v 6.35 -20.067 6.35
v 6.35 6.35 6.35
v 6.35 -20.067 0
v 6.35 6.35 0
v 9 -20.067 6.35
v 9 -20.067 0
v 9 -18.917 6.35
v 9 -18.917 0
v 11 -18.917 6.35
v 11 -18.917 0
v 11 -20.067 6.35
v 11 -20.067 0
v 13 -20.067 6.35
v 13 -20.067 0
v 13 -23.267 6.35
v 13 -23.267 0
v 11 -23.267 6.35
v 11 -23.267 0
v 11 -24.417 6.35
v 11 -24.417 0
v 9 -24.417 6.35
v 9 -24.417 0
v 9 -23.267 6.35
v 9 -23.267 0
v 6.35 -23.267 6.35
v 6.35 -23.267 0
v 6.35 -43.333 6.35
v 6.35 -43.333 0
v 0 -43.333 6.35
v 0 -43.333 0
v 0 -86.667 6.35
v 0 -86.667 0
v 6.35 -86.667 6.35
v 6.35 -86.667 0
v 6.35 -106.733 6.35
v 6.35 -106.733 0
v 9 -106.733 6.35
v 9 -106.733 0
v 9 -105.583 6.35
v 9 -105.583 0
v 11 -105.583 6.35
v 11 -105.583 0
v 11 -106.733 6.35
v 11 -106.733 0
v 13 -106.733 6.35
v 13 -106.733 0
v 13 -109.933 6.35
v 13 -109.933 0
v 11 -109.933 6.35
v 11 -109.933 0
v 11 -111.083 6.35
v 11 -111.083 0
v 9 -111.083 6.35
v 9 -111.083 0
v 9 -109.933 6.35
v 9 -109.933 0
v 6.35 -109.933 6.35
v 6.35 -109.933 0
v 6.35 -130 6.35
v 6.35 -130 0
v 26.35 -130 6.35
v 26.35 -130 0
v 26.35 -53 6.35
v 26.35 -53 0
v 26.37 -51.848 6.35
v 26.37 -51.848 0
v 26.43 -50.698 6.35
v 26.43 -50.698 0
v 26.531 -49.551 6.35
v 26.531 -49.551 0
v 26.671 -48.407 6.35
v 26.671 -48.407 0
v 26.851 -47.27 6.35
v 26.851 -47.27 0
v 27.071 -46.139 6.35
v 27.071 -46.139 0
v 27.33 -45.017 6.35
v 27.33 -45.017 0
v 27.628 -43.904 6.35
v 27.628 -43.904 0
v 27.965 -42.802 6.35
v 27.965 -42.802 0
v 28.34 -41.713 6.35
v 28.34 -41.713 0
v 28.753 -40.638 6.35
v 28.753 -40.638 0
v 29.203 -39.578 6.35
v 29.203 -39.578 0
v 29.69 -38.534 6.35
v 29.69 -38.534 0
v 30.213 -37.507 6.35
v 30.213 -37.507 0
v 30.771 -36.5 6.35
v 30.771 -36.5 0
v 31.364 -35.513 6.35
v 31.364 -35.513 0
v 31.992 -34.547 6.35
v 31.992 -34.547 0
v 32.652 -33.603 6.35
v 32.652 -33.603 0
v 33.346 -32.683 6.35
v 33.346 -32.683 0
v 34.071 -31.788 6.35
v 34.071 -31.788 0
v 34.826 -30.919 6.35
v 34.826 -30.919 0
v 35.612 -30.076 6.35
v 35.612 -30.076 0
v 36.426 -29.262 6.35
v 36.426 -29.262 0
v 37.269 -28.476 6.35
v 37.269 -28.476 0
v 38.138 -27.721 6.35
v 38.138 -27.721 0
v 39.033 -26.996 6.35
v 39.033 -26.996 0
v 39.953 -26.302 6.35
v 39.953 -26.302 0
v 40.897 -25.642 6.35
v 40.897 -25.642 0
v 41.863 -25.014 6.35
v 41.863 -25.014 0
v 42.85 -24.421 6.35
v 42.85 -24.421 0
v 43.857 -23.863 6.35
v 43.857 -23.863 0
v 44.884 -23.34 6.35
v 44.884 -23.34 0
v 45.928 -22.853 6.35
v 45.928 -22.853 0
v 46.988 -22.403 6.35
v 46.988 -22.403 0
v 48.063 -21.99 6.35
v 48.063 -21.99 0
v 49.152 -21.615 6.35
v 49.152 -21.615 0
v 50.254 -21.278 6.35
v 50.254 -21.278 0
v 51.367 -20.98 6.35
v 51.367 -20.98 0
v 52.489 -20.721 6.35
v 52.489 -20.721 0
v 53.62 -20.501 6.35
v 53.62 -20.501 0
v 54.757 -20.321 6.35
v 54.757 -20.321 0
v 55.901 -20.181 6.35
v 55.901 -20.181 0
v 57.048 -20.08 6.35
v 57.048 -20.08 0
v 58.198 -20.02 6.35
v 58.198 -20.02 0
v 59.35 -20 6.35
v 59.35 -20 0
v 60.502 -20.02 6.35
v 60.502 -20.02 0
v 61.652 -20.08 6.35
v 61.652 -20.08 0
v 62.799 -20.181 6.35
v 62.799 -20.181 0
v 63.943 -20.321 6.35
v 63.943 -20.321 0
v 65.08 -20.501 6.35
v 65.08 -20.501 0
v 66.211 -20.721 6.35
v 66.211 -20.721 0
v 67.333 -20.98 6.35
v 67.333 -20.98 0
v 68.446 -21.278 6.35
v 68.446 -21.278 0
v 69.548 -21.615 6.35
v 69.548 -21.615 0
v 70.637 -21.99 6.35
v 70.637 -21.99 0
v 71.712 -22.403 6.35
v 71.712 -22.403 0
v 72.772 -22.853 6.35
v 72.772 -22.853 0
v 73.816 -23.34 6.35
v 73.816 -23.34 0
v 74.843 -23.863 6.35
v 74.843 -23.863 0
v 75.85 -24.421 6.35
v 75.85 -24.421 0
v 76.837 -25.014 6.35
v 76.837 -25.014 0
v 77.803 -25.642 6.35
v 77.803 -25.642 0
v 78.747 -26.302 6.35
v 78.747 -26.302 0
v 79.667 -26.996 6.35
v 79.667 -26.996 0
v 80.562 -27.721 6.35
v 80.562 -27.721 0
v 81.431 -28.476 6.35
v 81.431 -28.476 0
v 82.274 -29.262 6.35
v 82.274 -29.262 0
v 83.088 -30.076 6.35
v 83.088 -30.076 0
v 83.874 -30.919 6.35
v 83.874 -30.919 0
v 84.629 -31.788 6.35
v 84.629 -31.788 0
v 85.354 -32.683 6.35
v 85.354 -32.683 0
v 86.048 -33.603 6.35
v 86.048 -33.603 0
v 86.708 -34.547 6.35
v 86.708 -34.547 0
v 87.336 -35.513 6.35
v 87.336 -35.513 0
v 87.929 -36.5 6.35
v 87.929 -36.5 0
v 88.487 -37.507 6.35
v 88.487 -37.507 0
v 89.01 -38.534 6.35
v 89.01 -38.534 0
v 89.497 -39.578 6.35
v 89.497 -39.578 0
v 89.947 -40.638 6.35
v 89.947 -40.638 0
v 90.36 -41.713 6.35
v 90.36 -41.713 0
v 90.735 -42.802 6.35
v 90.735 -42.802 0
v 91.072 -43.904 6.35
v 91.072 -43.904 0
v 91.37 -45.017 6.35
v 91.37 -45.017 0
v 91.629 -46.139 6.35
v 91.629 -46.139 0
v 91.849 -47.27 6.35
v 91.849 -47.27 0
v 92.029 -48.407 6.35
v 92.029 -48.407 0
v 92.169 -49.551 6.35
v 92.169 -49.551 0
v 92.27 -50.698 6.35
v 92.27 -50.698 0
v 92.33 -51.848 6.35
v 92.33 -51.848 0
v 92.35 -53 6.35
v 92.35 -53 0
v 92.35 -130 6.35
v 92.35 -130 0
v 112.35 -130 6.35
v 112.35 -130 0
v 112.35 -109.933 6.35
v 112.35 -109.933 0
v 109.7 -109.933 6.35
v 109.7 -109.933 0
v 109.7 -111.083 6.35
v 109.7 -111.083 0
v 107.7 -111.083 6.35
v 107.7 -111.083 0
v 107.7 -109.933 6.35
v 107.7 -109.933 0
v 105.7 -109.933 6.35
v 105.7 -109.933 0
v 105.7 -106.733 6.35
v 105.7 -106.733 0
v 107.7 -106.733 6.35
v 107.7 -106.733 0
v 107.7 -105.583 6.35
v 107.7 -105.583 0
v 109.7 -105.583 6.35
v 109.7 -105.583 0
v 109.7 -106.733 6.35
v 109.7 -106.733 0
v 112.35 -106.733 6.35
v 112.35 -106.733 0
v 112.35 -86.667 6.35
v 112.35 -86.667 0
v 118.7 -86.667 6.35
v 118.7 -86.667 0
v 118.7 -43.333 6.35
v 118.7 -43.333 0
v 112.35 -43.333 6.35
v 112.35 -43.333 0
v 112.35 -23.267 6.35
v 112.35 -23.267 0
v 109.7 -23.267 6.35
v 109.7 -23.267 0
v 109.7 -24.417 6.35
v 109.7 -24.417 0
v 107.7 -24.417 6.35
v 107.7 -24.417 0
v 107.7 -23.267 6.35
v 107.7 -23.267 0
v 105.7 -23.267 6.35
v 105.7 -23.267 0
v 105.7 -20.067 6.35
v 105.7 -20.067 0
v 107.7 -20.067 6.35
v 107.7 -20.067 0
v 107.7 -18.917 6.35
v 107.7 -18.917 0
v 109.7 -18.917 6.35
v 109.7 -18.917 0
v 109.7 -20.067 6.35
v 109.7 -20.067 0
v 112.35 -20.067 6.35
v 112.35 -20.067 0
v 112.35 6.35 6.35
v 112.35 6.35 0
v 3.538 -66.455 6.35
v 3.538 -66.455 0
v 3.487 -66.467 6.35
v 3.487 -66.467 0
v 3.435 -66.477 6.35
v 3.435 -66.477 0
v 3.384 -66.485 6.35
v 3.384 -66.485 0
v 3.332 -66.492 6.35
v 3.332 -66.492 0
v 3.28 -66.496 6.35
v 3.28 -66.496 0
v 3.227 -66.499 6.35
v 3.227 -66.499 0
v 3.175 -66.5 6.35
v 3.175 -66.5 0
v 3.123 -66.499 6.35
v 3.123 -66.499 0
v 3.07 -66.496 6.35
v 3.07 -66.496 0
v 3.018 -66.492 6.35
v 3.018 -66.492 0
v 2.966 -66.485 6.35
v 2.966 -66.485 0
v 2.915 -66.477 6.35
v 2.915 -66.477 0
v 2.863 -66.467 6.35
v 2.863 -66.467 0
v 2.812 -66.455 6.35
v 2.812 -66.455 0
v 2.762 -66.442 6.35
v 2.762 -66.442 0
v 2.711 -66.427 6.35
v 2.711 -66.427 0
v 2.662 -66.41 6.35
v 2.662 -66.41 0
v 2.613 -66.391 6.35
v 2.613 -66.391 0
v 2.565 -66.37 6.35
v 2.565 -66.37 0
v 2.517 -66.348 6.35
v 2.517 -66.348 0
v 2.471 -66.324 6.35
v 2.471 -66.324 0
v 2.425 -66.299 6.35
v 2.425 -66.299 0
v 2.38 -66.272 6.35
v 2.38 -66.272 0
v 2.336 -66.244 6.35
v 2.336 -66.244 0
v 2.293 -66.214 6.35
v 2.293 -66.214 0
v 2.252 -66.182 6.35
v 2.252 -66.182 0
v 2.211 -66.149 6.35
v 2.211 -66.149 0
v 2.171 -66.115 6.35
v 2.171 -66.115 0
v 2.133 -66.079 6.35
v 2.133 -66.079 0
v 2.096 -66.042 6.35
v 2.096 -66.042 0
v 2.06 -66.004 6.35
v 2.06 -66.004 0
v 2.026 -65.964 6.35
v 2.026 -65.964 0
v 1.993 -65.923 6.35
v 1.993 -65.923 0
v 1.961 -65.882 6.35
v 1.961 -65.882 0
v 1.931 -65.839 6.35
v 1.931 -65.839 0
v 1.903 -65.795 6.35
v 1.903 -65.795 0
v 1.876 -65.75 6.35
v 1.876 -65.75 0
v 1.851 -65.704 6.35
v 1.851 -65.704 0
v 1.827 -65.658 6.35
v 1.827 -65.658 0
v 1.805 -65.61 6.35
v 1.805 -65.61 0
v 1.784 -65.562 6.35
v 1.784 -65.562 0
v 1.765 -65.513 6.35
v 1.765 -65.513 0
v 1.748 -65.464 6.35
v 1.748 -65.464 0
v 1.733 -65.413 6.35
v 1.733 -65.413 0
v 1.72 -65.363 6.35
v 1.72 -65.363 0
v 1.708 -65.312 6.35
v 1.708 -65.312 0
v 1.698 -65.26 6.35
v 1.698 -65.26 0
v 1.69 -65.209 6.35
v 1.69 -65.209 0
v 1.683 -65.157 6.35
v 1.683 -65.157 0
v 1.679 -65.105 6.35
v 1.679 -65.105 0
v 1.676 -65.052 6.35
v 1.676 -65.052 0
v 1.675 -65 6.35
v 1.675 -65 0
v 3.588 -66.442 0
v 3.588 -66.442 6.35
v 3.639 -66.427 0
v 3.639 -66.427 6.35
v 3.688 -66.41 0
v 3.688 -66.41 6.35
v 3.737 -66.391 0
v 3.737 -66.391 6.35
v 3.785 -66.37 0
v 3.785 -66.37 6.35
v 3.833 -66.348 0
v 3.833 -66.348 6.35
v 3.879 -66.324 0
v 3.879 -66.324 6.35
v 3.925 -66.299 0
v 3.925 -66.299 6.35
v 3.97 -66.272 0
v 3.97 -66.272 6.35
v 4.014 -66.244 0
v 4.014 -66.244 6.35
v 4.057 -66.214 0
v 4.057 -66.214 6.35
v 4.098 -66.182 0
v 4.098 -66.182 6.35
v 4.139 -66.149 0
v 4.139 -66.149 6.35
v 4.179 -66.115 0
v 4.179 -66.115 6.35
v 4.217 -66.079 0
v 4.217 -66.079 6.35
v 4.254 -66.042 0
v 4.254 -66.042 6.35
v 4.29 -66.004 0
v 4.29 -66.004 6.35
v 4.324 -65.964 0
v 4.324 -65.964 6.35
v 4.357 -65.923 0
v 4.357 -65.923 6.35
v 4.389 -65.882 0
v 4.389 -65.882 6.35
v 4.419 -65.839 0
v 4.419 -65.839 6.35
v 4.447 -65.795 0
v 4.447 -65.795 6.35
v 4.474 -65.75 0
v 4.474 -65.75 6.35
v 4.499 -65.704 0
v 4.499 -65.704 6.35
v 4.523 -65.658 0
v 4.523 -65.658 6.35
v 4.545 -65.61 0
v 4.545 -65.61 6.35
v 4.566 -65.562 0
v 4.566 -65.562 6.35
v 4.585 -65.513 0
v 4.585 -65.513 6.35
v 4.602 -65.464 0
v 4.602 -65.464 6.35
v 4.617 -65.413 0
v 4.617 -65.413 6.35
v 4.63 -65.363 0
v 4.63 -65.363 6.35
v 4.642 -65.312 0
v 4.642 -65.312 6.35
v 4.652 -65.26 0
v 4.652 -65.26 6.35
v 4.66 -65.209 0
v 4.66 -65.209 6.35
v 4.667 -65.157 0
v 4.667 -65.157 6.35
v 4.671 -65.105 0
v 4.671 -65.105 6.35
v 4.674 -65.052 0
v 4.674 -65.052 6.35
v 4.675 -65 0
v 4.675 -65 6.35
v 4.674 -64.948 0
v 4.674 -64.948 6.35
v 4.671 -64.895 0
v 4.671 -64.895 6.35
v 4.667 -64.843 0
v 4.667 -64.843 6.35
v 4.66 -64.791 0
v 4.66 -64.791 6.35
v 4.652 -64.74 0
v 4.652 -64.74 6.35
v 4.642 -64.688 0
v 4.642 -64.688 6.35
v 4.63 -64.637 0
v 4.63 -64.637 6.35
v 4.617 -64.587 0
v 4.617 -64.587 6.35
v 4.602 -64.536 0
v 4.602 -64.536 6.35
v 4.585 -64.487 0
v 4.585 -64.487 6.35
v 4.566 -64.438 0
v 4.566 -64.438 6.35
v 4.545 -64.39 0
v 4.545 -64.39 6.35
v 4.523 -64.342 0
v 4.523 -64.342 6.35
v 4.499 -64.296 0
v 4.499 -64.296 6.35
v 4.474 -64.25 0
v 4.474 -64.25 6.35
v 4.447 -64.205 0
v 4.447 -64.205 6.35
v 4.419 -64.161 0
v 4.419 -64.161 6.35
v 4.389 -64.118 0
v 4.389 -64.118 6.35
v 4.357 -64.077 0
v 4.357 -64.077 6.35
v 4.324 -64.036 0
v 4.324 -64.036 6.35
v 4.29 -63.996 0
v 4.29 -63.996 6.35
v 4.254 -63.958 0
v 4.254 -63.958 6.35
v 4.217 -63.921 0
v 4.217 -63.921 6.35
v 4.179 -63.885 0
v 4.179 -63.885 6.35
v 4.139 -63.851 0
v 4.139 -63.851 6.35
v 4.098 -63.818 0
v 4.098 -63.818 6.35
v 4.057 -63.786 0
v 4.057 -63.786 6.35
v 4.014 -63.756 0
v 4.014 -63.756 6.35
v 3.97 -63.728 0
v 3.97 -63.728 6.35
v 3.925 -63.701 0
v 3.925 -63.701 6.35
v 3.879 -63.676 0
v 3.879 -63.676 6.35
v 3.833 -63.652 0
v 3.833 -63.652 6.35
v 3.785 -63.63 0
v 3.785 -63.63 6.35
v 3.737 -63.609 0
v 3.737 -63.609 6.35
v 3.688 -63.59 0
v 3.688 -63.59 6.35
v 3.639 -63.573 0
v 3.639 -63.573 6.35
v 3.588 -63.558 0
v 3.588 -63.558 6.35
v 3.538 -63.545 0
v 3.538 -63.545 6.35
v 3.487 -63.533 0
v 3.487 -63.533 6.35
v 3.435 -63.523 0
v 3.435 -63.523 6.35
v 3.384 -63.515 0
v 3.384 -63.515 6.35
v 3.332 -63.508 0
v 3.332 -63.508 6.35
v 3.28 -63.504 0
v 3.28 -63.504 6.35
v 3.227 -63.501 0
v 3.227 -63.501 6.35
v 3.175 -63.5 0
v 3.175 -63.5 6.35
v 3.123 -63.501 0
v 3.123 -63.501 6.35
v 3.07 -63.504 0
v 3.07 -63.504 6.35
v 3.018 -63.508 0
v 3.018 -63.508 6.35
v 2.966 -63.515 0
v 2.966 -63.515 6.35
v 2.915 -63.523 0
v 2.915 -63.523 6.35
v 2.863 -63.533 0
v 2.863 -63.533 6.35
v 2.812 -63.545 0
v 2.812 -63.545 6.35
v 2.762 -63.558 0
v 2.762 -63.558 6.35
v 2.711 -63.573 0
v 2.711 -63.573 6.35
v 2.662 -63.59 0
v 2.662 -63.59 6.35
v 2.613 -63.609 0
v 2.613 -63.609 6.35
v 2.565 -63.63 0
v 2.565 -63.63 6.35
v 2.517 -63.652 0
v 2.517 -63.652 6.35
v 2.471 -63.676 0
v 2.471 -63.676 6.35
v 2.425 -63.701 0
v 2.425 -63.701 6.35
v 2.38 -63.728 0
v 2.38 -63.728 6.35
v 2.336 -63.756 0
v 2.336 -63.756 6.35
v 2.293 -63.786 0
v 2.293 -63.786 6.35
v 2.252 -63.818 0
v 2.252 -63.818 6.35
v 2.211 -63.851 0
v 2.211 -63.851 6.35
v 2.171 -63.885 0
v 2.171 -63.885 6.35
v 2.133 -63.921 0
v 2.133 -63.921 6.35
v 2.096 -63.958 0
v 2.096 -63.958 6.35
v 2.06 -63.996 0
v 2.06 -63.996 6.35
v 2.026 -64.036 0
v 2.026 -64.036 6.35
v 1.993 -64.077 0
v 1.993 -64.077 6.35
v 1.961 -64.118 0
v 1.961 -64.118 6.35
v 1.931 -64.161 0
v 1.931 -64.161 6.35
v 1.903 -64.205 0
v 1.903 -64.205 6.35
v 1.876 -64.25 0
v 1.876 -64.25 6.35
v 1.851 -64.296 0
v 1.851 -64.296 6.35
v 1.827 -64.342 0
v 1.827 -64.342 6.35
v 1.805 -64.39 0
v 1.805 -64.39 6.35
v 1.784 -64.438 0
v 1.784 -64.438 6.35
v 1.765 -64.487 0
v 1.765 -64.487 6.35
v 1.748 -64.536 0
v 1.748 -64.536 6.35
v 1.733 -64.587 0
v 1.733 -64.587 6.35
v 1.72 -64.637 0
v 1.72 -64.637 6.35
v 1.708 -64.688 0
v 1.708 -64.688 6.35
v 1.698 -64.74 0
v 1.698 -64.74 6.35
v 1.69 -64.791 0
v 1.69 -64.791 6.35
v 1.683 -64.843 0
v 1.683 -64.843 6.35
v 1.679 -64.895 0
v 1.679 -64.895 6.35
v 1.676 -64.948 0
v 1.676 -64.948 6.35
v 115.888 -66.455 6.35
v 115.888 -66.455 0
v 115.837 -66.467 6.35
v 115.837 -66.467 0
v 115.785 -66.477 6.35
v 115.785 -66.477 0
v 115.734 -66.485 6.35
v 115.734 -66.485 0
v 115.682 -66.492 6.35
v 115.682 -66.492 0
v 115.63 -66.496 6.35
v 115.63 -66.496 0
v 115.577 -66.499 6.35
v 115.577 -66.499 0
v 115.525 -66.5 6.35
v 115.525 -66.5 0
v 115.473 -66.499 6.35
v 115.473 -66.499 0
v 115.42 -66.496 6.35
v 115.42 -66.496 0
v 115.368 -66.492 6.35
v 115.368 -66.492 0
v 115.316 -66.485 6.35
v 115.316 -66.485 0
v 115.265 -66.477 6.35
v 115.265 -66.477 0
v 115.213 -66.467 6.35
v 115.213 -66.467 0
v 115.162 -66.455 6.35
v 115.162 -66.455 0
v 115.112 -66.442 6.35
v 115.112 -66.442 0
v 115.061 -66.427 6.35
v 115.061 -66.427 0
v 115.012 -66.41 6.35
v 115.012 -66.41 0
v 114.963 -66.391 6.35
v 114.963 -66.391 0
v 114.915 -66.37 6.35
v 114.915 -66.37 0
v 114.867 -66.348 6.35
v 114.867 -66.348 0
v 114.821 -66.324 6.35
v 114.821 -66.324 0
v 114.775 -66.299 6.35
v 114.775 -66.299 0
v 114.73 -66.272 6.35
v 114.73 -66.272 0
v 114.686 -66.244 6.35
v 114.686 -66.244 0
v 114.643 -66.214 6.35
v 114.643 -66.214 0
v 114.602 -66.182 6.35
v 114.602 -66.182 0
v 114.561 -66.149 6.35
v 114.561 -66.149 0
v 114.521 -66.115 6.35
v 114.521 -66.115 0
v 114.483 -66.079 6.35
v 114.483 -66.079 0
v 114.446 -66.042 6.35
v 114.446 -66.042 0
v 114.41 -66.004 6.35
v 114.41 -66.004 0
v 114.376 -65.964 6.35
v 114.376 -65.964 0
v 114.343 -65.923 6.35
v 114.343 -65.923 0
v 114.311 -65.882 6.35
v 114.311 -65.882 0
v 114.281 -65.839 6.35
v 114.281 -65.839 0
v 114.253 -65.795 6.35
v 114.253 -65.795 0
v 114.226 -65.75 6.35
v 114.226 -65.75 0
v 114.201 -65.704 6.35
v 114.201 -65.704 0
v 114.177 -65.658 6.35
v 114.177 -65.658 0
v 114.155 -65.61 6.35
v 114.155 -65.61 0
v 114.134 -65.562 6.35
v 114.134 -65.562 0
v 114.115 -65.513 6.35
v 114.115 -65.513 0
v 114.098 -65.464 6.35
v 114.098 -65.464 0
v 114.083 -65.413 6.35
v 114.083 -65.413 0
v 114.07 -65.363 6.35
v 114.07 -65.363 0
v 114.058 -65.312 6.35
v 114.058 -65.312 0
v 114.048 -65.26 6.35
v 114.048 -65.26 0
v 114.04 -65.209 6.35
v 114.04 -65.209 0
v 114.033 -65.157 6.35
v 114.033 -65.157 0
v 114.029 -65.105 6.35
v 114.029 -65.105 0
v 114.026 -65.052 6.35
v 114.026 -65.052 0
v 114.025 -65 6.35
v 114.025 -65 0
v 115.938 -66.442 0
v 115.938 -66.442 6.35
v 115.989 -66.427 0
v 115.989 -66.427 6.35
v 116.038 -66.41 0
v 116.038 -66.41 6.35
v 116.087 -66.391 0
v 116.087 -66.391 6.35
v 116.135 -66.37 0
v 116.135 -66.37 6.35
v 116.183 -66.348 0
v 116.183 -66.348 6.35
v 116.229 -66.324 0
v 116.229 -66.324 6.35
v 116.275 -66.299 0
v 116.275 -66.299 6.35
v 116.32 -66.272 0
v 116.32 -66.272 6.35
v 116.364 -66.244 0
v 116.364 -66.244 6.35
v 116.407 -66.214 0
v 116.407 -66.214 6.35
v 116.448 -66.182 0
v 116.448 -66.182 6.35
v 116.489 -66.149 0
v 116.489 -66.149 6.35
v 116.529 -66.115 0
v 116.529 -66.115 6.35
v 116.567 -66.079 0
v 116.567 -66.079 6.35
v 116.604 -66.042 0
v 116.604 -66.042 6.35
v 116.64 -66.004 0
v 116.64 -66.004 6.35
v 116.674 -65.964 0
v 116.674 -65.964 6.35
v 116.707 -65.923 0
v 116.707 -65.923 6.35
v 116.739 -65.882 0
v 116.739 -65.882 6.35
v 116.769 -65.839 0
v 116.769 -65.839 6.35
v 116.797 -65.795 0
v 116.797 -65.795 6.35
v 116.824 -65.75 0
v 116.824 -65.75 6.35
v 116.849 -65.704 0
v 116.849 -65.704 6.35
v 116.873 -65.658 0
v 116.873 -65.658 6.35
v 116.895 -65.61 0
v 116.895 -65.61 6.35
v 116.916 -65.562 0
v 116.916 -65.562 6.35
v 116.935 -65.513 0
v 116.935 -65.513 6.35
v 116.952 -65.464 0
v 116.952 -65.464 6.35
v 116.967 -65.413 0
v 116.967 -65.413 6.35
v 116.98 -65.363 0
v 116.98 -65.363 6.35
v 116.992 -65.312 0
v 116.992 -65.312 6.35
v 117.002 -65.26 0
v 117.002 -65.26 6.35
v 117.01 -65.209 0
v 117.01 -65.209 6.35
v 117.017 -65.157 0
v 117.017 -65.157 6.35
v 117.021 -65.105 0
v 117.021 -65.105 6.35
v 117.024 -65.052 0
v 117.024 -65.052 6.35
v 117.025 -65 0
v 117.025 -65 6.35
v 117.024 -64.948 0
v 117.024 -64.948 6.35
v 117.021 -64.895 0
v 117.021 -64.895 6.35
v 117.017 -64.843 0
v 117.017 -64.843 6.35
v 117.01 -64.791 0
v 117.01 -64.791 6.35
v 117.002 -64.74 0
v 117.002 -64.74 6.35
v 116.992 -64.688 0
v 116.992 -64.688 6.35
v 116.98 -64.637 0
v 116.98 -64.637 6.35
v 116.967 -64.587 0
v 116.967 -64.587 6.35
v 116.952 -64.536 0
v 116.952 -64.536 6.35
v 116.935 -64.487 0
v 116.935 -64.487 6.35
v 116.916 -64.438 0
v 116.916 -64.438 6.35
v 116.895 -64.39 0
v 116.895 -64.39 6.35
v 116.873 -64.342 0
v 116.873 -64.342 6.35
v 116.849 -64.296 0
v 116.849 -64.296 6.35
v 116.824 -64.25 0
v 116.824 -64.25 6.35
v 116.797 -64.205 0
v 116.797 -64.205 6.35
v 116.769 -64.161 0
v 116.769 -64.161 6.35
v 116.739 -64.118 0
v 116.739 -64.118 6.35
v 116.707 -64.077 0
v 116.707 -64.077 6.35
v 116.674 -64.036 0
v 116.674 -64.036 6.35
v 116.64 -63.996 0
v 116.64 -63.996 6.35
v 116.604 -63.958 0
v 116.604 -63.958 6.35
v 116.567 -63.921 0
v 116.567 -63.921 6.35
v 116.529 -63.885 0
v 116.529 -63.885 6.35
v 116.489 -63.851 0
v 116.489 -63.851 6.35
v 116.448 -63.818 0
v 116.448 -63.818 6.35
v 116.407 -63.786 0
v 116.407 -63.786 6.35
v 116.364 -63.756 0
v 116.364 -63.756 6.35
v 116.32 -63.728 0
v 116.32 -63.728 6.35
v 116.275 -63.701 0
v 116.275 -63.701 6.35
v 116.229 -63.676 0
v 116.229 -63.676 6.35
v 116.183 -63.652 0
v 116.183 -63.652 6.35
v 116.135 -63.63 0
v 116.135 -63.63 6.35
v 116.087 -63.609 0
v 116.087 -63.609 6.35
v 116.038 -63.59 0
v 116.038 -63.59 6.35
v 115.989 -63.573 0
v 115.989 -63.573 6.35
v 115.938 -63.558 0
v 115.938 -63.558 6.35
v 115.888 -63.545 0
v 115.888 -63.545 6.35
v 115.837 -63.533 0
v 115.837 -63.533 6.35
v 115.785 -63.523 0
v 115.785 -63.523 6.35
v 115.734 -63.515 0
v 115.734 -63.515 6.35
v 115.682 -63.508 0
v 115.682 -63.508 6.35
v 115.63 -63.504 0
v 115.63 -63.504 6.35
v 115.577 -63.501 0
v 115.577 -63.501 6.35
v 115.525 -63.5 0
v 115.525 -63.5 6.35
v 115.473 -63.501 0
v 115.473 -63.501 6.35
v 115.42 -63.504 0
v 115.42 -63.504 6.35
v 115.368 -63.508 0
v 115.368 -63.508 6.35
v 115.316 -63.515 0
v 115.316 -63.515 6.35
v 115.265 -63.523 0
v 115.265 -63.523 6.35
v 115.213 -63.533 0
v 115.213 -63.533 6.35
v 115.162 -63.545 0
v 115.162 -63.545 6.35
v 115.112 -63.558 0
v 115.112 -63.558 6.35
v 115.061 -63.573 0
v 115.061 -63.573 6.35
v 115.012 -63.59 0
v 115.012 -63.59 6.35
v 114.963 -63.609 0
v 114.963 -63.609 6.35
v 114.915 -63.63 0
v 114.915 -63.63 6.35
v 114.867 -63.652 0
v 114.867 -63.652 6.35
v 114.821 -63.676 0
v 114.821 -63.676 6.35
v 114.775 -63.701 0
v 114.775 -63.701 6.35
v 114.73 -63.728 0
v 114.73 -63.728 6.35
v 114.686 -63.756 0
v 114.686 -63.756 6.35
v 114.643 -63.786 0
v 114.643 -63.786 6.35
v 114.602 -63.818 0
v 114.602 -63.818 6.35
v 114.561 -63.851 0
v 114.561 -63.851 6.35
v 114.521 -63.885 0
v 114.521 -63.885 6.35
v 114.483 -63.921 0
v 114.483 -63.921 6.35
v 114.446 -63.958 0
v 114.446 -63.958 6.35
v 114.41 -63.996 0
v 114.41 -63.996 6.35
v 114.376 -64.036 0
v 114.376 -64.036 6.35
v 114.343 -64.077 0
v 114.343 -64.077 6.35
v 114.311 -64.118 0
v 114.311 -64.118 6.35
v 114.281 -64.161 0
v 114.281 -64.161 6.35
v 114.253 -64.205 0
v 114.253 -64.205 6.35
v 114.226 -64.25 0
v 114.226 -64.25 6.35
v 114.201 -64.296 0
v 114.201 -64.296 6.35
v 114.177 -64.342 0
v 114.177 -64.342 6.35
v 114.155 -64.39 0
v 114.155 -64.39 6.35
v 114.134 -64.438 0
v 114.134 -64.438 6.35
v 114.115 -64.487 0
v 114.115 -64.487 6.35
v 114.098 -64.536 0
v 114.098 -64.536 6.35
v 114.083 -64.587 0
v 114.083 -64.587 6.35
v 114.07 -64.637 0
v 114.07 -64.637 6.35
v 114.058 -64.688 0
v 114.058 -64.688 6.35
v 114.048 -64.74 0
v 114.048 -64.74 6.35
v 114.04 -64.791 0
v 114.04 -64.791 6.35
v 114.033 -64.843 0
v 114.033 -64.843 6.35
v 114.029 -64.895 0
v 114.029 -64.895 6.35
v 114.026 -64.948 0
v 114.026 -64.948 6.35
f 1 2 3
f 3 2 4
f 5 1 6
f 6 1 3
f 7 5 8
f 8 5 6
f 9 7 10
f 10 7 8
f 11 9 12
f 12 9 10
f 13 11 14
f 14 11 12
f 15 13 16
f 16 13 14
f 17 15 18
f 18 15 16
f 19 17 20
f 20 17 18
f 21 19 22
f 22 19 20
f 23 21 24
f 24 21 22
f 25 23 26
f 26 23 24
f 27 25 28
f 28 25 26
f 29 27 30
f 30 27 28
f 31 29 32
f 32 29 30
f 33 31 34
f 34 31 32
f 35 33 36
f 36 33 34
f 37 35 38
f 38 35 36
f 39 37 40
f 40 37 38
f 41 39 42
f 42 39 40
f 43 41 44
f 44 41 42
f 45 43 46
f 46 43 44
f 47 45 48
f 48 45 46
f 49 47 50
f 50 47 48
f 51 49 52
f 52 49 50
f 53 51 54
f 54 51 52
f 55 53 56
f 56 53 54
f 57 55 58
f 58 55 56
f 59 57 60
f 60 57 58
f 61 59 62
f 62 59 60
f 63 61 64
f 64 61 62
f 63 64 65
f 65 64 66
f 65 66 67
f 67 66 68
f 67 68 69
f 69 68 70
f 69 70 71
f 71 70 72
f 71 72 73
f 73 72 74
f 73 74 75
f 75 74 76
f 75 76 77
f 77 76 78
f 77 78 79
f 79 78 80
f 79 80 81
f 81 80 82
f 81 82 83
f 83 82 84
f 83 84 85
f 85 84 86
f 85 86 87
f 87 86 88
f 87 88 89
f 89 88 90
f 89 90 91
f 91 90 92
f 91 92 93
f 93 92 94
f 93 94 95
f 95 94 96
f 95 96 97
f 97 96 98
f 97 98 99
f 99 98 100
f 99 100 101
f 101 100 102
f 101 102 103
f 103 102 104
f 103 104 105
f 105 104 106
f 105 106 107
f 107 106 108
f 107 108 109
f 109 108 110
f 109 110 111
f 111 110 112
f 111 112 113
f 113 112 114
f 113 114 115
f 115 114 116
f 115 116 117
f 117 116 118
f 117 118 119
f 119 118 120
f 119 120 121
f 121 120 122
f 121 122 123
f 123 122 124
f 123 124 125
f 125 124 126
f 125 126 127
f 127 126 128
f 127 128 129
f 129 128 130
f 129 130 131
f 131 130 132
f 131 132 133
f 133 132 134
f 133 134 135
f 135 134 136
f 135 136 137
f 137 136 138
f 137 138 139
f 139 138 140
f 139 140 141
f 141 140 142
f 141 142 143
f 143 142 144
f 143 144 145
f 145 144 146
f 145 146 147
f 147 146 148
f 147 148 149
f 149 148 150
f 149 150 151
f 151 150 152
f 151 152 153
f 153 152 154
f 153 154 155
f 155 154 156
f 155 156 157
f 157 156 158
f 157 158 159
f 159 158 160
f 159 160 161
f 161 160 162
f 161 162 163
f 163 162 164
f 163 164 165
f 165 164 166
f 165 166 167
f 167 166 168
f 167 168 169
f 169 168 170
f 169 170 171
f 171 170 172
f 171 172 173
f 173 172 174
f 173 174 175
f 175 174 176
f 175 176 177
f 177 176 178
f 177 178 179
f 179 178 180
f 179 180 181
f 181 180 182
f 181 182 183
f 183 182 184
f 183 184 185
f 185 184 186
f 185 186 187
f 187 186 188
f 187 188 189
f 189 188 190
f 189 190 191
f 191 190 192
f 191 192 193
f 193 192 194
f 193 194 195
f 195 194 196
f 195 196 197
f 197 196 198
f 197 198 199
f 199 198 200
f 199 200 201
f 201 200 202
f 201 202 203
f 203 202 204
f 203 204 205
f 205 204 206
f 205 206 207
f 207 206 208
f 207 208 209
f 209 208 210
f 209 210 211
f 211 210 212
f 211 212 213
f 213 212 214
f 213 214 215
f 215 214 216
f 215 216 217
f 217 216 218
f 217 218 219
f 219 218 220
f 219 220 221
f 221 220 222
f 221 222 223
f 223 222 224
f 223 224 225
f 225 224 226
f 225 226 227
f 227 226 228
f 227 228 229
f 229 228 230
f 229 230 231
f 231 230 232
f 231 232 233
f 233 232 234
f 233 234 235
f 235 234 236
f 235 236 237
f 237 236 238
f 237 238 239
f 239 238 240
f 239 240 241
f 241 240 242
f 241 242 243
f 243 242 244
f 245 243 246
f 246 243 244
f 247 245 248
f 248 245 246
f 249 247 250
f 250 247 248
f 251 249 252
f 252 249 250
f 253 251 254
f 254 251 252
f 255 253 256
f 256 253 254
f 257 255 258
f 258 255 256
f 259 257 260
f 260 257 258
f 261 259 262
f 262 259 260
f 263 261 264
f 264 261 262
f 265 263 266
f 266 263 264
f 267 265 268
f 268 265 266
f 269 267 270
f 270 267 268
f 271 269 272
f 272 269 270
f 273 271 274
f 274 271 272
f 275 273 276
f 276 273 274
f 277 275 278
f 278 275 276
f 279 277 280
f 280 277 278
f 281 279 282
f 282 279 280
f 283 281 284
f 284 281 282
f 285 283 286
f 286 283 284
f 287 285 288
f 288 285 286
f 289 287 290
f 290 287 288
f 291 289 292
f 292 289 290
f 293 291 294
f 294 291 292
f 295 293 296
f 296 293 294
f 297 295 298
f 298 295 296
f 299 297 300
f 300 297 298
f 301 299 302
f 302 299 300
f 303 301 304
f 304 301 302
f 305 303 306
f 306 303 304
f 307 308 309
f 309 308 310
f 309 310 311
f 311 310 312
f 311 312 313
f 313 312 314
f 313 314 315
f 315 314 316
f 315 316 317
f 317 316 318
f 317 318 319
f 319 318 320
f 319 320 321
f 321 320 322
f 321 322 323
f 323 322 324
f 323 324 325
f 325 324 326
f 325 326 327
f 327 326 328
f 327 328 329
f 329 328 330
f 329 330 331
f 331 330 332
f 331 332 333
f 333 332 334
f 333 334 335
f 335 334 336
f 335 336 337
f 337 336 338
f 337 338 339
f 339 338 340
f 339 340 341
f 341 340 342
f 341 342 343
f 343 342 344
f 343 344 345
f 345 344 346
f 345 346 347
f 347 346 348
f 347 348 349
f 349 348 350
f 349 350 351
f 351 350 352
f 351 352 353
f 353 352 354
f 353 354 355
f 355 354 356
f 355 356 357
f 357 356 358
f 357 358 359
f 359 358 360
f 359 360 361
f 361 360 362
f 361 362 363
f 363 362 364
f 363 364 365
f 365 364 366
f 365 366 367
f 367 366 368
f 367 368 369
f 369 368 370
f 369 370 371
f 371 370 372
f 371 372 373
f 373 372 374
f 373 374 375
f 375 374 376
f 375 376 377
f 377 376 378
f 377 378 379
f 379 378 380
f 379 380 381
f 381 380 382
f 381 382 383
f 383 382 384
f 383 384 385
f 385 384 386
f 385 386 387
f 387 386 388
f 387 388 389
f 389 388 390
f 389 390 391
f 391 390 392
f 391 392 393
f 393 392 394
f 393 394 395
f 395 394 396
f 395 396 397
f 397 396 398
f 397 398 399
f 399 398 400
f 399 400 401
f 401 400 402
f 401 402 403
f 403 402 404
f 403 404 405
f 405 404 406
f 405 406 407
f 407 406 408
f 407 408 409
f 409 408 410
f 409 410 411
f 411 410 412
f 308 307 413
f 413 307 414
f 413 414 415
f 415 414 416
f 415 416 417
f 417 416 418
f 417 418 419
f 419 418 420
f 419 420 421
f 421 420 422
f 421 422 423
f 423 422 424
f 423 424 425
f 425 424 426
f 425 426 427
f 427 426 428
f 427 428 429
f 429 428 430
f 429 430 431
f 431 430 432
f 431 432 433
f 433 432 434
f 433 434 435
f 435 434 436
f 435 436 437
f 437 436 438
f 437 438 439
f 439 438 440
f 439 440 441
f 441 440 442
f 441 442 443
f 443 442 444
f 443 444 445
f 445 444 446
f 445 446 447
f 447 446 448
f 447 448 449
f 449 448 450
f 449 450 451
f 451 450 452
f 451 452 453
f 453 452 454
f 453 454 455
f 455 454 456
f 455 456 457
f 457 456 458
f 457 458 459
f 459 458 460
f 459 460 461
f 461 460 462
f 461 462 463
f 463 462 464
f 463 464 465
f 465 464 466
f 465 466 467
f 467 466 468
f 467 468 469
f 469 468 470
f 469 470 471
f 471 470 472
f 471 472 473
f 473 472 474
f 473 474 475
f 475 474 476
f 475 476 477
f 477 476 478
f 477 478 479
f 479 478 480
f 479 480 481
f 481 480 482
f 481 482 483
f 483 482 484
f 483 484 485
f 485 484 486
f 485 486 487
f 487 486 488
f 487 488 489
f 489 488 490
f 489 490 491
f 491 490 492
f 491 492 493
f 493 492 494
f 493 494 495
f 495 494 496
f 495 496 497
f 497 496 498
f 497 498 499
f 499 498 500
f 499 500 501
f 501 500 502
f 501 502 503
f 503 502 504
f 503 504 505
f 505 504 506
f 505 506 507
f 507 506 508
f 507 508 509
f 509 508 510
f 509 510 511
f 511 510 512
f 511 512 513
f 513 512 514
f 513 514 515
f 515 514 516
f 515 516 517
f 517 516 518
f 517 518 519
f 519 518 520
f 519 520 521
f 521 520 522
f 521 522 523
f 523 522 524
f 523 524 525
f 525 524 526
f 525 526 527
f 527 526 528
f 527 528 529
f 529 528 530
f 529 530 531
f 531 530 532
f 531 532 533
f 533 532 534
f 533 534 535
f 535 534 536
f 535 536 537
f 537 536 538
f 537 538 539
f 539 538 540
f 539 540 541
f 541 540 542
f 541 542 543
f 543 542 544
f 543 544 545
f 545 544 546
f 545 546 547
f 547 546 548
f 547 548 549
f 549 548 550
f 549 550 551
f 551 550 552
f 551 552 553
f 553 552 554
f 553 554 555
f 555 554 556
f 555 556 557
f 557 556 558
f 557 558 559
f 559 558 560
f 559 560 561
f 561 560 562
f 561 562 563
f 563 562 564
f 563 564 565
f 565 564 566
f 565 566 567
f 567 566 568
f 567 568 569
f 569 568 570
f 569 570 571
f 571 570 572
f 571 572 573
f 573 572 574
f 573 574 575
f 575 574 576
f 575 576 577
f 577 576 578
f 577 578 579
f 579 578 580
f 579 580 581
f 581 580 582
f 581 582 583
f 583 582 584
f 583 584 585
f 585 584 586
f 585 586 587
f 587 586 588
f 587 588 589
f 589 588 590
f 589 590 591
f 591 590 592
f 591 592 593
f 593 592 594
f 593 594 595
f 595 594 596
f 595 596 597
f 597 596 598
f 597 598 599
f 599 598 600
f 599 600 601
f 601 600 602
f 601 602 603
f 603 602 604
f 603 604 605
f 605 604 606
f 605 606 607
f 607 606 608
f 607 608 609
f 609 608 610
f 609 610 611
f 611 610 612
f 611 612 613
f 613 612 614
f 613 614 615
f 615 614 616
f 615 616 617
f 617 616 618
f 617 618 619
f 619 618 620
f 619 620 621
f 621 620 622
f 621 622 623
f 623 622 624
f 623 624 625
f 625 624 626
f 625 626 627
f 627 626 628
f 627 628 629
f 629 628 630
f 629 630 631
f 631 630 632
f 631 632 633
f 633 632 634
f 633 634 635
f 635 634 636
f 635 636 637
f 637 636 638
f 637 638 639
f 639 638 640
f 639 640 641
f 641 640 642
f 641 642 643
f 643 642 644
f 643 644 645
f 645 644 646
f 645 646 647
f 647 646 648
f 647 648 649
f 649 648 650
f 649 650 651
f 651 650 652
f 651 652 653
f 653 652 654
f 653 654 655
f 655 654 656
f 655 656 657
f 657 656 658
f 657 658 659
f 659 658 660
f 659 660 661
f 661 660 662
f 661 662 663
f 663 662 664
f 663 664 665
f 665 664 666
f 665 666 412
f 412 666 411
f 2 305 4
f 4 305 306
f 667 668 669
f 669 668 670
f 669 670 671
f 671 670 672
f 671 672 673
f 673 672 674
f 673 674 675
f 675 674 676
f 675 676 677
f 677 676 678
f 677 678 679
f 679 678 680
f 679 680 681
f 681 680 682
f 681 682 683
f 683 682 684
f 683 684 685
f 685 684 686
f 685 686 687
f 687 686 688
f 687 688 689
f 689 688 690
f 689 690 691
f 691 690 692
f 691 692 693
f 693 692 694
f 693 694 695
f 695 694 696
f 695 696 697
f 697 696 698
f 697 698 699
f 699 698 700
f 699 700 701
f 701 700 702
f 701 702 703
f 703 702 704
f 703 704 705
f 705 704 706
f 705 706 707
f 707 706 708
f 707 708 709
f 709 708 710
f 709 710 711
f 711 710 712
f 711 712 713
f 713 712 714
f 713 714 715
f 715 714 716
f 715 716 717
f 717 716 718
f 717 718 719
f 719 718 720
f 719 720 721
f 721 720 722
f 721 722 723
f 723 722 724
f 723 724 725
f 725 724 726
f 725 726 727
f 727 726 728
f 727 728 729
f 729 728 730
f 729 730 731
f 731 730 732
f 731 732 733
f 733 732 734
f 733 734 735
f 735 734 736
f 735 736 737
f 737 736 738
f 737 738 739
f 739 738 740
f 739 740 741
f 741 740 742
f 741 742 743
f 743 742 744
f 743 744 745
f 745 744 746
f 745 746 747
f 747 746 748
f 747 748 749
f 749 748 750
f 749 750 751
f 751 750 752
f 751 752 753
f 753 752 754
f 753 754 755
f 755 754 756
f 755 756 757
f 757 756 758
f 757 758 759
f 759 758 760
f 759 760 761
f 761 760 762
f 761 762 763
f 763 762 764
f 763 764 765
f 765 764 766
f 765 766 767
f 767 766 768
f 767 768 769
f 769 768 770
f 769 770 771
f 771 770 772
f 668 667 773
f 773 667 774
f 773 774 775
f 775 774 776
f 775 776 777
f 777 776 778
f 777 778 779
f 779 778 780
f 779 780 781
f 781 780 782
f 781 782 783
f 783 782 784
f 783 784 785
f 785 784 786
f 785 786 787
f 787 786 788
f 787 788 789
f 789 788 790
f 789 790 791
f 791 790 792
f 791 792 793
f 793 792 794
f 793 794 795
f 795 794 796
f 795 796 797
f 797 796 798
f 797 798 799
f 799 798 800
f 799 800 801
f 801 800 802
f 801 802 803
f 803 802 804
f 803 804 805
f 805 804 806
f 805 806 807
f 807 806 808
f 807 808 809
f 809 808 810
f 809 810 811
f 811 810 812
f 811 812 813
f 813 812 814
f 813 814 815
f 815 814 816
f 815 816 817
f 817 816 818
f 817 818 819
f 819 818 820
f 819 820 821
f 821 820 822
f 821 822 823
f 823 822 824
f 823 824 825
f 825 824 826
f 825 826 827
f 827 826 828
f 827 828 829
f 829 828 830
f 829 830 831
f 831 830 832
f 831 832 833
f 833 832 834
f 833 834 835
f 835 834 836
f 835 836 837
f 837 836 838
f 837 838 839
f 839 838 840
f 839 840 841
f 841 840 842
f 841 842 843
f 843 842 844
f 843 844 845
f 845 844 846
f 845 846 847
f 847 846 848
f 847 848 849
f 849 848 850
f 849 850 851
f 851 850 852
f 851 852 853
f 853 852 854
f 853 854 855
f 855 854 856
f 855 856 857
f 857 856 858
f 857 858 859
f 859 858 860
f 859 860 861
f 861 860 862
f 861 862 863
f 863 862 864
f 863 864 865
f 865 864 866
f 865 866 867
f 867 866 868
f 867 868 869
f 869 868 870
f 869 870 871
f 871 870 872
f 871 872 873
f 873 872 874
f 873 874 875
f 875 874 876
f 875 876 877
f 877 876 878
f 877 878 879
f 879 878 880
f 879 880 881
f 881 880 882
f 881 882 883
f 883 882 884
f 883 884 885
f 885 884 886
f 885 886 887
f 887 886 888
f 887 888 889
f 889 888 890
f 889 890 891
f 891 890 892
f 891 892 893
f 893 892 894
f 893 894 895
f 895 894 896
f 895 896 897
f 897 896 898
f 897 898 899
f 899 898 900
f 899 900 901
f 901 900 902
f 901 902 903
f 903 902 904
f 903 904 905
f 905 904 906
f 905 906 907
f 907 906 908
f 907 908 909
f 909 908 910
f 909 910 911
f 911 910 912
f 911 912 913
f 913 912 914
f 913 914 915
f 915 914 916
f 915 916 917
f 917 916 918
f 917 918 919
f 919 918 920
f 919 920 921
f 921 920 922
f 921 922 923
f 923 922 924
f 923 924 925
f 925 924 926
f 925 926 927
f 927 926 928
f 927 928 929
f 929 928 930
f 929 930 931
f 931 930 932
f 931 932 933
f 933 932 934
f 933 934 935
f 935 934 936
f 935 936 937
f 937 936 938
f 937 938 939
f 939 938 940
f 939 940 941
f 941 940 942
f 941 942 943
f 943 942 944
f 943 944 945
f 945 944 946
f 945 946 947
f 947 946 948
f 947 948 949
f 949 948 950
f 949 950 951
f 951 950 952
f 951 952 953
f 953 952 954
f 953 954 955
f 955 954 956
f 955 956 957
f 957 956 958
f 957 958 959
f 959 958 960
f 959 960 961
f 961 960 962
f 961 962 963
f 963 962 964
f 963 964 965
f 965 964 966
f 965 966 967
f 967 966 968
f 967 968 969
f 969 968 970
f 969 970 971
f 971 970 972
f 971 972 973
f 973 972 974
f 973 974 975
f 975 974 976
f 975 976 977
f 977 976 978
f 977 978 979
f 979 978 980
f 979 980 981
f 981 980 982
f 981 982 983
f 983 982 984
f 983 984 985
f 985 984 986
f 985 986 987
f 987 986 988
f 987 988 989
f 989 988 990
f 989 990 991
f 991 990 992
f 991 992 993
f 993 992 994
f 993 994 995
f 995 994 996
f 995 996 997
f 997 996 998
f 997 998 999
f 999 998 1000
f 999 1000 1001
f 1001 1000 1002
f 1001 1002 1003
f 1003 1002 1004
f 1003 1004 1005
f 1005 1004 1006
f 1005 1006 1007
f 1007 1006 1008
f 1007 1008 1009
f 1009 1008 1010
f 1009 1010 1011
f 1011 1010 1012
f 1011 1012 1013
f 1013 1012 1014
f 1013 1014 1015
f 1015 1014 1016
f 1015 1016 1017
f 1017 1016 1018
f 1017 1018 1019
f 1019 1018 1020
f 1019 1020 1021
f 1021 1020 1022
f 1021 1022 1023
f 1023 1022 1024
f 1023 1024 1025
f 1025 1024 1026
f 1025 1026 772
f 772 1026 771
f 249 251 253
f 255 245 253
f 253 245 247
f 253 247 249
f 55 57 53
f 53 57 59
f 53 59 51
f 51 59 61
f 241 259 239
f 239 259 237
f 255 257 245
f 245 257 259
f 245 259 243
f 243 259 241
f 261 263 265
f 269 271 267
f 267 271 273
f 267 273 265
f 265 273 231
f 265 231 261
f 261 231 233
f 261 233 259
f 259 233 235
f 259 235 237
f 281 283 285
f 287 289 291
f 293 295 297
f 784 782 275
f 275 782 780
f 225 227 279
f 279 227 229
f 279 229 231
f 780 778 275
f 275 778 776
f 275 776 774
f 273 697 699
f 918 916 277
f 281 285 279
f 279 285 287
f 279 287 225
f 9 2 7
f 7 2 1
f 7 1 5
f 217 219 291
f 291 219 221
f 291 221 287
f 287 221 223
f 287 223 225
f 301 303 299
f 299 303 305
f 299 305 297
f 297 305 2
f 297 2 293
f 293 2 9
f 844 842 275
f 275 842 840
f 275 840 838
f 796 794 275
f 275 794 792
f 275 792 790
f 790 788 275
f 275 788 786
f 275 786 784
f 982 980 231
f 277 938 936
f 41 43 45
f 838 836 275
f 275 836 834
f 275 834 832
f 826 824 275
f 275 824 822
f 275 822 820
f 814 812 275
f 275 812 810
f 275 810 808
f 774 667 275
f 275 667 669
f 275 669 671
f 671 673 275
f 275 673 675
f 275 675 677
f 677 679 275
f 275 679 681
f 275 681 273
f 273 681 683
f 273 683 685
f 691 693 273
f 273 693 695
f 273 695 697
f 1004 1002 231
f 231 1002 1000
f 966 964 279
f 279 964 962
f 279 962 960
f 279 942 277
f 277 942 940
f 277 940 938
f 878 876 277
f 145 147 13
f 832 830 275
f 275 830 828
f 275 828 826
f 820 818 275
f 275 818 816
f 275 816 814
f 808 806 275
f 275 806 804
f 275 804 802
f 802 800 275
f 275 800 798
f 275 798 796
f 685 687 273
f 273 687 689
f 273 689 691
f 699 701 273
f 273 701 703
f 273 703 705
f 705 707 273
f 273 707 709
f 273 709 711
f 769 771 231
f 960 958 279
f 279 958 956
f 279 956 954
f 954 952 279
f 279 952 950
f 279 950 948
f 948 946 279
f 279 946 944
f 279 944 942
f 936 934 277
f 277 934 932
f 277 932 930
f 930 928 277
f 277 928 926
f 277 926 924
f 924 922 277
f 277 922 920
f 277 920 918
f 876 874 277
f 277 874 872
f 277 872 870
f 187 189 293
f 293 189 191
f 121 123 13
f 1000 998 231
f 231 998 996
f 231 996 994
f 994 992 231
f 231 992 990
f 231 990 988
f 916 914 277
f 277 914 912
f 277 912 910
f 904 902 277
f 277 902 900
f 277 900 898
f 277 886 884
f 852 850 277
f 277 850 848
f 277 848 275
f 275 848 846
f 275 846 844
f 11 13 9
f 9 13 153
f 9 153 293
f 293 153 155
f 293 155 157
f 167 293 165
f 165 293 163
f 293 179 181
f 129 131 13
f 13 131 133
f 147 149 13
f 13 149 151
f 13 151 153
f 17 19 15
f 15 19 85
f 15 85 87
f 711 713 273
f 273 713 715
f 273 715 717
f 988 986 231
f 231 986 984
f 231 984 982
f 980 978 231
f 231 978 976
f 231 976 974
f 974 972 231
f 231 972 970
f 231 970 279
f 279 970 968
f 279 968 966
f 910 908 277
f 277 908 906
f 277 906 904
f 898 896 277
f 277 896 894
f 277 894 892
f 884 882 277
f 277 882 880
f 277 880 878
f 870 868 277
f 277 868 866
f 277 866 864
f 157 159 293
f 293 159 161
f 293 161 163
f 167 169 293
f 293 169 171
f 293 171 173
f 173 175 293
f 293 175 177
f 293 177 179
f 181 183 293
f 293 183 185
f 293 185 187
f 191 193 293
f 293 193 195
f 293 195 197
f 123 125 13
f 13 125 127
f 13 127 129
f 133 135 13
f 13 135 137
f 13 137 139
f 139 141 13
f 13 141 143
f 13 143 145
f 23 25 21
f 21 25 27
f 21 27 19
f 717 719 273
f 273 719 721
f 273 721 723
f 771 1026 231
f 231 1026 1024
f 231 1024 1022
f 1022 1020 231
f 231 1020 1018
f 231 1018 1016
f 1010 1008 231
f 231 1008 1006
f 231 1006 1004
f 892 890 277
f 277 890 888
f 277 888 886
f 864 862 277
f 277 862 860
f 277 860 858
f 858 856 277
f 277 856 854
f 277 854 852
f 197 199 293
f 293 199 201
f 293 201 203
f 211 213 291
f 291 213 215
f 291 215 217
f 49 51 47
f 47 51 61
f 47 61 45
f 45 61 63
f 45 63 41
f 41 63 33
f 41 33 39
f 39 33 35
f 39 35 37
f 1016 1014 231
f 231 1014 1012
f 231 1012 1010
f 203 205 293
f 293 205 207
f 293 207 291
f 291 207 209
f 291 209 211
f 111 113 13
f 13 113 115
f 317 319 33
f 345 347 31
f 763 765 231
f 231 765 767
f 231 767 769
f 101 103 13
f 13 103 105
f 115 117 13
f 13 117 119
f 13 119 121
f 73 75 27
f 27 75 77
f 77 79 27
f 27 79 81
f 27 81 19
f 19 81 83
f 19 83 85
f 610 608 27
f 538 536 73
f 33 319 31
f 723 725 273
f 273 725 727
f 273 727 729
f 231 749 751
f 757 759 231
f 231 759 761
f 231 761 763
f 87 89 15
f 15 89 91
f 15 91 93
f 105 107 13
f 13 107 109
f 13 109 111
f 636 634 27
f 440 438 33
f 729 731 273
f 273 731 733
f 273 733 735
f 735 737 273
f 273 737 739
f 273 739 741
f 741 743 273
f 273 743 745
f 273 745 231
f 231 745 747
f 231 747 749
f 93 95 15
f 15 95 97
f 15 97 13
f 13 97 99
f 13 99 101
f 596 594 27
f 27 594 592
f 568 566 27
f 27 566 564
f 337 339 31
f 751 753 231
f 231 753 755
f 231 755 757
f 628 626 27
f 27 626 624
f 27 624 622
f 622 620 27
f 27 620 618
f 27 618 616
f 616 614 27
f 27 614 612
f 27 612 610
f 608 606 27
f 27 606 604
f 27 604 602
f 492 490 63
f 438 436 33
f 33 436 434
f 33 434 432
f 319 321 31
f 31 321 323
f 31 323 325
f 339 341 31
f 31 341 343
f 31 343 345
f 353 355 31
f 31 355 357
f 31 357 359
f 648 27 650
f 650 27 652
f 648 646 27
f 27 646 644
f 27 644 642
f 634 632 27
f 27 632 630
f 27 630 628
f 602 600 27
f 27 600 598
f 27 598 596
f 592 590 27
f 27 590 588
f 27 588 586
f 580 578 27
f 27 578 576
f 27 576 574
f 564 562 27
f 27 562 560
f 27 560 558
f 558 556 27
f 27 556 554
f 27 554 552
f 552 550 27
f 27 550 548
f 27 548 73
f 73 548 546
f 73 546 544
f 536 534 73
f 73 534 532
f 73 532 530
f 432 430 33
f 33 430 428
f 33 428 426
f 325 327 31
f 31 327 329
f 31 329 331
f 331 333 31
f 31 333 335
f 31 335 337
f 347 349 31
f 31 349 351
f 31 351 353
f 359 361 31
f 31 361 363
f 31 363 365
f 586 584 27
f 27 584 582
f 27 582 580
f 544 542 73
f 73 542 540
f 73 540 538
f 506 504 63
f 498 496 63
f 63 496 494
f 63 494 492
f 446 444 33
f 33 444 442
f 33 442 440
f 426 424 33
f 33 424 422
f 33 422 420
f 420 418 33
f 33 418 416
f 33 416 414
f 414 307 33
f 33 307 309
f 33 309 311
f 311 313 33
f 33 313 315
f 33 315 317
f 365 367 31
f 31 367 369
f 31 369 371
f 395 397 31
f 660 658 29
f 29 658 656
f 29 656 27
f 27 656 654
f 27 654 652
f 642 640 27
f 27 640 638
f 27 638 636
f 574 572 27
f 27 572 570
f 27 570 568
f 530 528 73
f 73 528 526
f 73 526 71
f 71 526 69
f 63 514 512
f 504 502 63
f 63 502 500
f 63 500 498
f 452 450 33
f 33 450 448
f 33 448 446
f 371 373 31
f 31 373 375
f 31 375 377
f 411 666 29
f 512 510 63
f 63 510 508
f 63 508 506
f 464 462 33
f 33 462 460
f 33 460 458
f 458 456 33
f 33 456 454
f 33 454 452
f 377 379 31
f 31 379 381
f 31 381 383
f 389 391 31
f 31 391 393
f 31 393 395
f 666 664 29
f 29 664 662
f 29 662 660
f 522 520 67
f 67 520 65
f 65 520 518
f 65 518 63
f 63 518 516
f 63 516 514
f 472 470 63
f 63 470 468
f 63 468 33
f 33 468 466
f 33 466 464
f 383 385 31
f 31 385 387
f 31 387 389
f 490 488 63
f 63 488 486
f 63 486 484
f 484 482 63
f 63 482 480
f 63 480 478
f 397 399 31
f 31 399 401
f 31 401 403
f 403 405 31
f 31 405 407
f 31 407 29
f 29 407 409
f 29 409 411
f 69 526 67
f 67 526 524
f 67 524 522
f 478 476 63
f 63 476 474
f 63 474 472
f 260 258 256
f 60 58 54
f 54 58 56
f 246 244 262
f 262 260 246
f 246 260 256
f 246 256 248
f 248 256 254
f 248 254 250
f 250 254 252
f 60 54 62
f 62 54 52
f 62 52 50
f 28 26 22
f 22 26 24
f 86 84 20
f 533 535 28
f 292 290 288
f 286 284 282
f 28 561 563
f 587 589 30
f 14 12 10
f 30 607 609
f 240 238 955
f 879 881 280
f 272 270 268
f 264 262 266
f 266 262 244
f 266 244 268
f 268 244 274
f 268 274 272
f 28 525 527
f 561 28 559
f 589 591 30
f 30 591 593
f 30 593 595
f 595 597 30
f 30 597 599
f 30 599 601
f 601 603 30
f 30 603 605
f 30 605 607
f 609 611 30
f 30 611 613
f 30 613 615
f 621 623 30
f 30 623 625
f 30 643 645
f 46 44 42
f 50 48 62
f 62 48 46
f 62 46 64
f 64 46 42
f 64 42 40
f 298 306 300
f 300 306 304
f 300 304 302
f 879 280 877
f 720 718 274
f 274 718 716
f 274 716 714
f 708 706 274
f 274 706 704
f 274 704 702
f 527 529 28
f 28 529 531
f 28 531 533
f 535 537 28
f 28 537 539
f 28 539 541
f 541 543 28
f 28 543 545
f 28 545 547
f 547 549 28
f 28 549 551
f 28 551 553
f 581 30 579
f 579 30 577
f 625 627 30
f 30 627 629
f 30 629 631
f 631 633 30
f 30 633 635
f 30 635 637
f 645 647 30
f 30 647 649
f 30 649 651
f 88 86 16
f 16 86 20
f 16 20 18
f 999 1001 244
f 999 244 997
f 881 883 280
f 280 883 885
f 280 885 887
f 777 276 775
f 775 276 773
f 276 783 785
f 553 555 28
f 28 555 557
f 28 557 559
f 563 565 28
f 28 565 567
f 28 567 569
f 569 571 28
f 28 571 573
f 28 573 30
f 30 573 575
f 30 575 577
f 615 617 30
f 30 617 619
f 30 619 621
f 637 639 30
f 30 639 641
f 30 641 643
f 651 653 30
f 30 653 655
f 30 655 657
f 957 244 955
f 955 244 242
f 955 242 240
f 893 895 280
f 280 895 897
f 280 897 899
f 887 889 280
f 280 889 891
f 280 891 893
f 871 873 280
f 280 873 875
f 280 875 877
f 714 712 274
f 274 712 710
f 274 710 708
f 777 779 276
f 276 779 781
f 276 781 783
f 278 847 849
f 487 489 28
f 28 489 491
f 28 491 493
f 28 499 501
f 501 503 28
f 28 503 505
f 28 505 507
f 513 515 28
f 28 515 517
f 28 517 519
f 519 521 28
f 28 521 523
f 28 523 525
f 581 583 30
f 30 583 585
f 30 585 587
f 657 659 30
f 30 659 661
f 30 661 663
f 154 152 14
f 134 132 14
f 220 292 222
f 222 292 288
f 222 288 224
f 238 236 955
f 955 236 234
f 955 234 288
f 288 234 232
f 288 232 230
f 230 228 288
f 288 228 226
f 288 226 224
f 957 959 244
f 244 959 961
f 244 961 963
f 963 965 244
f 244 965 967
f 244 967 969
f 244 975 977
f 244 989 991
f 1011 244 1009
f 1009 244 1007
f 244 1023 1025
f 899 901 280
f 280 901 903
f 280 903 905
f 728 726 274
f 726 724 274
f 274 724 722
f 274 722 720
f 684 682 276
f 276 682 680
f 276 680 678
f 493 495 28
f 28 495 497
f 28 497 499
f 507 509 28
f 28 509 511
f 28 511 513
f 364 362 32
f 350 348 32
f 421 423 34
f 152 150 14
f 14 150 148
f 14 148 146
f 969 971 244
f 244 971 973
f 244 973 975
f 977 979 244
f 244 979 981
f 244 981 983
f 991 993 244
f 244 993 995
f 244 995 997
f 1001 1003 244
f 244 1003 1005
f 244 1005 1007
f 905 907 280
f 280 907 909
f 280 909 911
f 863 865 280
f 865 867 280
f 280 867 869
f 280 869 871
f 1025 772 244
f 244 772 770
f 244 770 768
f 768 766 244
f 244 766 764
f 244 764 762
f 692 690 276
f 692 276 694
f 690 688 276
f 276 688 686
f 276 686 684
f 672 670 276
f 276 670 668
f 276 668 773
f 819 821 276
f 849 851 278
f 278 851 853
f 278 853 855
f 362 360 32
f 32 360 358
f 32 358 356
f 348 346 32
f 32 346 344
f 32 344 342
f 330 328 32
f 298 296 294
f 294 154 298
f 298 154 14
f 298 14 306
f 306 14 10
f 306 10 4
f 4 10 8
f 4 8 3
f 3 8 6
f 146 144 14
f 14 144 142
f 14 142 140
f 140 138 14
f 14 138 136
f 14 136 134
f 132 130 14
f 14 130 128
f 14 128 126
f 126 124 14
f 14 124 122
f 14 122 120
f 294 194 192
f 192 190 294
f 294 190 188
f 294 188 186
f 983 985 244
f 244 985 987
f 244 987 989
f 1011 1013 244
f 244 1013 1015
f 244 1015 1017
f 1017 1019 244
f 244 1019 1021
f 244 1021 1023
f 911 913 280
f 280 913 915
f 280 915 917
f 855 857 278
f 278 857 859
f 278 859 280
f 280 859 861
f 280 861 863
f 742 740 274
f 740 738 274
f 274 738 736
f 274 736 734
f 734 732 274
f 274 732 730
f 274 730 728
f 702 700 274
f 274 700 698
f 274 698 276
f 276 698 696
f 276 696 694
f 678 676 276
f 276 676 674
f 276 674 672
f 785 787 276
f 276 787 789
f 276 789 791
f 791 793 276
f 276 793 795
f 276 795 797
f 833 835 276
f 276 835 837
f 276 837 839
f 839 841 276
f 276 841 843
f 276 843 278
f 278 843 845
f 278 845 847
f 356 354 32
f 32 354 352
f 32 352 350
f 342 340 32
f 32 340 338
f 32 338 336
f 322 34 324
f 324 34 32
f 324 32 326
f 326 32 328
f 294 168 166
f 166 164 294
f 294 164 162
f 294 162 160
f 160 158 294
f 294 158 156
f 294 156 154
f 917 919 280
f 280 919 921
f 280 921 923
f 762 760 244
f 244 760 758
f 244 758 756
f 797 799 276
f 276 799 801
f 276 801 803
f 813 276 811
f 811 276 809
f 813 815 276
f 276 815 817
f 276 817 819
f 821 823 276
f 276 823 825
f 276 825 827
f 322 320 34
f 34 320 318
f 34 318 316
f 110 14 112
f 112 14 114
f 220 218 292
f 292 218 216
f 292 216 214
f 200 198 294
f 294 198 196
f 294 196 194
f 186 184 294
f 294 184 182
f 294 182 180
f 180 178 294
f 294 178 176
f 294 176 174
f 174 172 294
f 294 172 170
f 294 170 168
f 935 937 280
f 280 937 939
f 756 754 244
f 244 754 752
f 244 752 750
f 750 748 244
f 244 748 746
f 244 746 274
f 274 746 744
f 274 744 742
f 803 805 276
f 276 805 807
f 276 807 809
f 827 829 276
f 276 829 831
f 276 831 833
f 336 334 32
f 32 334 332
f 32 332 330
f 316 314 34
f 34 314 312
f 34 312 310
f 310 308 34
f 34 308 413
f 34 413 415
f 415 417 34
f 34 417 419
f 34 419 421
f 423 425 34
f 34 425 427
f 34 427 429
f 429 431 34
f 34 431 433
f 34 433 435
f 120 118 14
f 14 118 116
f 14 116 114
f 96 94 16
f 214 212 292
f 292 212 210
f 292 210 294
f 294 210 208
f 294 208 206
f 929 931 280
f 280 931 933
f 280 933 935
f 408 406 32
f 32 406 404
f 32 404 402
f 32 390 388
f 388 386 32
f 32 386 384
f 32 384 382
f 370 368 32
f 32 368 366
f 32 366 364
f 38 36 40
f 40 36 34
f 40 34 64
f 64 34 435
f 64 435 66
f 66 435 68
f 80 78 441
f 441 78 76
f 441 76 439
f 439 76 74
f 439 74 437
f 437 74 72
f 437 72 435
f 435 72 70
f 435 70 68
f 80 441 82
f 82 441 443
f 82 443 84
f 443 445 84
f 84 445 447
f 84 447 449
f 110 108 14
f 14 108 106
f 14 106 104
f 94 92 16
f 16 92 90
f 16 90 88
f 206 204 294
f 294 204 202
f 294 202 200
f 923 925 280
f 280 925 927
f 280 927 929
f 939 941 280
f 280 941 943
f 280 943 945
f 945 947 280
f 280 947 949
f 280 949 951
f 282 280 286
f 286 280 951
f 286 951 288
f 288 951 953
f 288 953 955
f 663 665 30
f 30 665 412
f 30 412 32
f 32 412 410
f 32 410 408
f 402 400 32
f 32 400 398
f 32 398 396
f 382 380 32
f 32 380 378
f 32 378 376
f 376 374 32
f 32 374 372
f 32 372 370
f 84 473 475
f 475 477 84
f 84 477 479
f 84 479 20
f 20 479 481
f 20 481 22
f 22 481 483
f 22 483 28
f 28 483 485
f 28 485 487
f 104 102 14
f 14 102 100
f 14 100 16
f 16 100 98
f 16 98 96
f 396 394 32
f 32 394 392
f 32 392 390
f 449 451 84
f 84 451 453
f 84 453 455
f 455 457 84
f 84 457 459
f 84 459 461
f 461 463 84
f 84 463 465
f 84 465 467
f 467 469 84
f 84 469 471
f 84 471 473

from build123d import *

# Parameters (mm, degrees)
SKETCH1_R           = 1.5
BOSS_EXTRUDE1_DEPTH = 6.35


with BuildPart() as part:
    # Sketch1 → Boss-Extrude1 (new body)
    with BuildSketch(Plane.XY):
        with BuildLine():
            Line((6.35, 6.35), (6.35, -20.066666667))
            Line((6.35, -20.066666667), (9, -20.066666667))
            Line((9, -20.066666667), (9, -18.916666667))
            Line((9, -18.916666667), (11, -18.916666667))
            Line((11, -18.916666667), (11, -20.066666667))
            Line((11, -20.066666667), (13, -20.066666667))
            Line((13, -20.066666667), (13, -23.266666667))
            Line((13, -23.266666667), (11, -23.266666667))
            Line((11, -23.266666667), (11, -24.416666667))
            Line((11, -24.416666667), (9, -24.416666667))
            Line((9, -24.416666667), (9, -23.266666667))
            Line((9, -23.266666667), (6.35, -23.266666667))
            Line((6.35, -23.266666667), (6.35, -43.333333333))
            Line((6.35, -43.333333333), (0, -43.333333333))
            Line((0, -43.333333333), (0, -86.666666667))
            Line((0, -86.666666667), (6.35, -86.666666667))
            Line((6.35, -86.666666667), (6.35, -106.733333333))
            Line((6.35, -106.733333333), (9, -106.733333333))
            Line((9, -106.733333333), (9, -105.583333333))
            Line((9, -105.583333333), (11, -105.583333333))
            Line((11, -105.583333333), (11, -106.733333333))
            Line((11, -106.733333333), (13, -106.733333333))
            Line((13, -106.733333333), (13, -109.933333333))
            Line((13, -109.933333333), (11, -109.933333333))
            Line((11, -109.933333333), (11, -111.083333333))
            Line((11, -111.083333333), (9, -111.083333333))
            Line((9, -111.083333333), (9, -109.933333333))
            Line((9, -109.933333333), (6.35, -109.933333333))
            Line((6.35, -109.933333333), (6.35, -130))
            Line((6.35, -130), (26.35, -130))
            Line((26.35, -130), (26.35, -53))
            ThreePointArc((26.35, -53), (59.35, -20), (92.35, -53))
            Line((92.35, -53), (92.35, -130))
            Line((92.35, -130), (112.35, -130))
            Line((112.35, -130), (112.35, -109.933333333))
            Line((112.35, -109.933333333), (109.7, -109.933333333))
            Line((109.7, -109.933333333), (109.7, -111.083333333))
            Line((109.7, -111.083333333), (107.7, -111.083333333))
            Line((107.7, -111.083333333), (107.7, -109.933333333))
            Line((107.7, -109.933333333), (105.7, -109.933333333))
            Line((105.7, -109.933333333), (105.7, -106.733333333))
            Line((105.7, -106.733333333), (107.7, -106.733333333))
            Line((107.7, -106.733333333), (107.7, -105.583333333))
            Line((107.7, -105.583333333), (109.7, -105.583333333))
            Line((109.7, -105.583333333), (109.7, -106.733333333))
            Line((109.7, -106.733333333), (112.35, -106.733333333))
            Line((112.35, -106.733333333), (112.35, -86.666666667))
            Line((112.35, -86.666666667), (118.7, -86.666666667))
            Line((118.7, -86.666666667), (118.7, -43.333333333))
            Line((118.7, -43.333333333), (112.35, -43.333333333))
            Line((112.35, -43.333333333), (112.35, -23.266666667))
            Line((112.35, -23.266666667), (109.7, -23.266666667))
            Line((109.7, -23.266666667), (109.7, -24.416666667))
            Line((109.7, -24.416666667), (107.7, -24.416666667))
            Line((107.7, -24.416666667), (107.7, -23.266666667))
            Line((107.7, -23.266666667), (105.7, -23.266666667))
            Line((105.7, -23.266666667), (105.7, -20.066666667))
            Line((105.7, -20.066666667), (107.7, -20.066666667))
            Line((107.7, -20.066666667), (107.7, -18.916666667))
            Line((107.7, -18.916666667), (109.7, -18.916666667))
            Line((109.7, -18.916666667), (109.7, -20.066666667))
            Line((109.7, -20.066666667), (112.35, -20.066666667))
            Line((112.35, -20.066666667), (112.35, 6.35))
            Line((112.35, 6.35), (6.35, 6.35))
        make_face()
        with Locations((3.175, -65)):
            Circle(SKETCH1_R, mode=Mode.SUBTRACT)
        with Locations((115.525, -65)):
            Circle(SKETCH1_R, mode=Mode.SUBTRACT)
    extrude(amount=BOSS_EXTRUDE1_DEPTH)


solid = part.part
